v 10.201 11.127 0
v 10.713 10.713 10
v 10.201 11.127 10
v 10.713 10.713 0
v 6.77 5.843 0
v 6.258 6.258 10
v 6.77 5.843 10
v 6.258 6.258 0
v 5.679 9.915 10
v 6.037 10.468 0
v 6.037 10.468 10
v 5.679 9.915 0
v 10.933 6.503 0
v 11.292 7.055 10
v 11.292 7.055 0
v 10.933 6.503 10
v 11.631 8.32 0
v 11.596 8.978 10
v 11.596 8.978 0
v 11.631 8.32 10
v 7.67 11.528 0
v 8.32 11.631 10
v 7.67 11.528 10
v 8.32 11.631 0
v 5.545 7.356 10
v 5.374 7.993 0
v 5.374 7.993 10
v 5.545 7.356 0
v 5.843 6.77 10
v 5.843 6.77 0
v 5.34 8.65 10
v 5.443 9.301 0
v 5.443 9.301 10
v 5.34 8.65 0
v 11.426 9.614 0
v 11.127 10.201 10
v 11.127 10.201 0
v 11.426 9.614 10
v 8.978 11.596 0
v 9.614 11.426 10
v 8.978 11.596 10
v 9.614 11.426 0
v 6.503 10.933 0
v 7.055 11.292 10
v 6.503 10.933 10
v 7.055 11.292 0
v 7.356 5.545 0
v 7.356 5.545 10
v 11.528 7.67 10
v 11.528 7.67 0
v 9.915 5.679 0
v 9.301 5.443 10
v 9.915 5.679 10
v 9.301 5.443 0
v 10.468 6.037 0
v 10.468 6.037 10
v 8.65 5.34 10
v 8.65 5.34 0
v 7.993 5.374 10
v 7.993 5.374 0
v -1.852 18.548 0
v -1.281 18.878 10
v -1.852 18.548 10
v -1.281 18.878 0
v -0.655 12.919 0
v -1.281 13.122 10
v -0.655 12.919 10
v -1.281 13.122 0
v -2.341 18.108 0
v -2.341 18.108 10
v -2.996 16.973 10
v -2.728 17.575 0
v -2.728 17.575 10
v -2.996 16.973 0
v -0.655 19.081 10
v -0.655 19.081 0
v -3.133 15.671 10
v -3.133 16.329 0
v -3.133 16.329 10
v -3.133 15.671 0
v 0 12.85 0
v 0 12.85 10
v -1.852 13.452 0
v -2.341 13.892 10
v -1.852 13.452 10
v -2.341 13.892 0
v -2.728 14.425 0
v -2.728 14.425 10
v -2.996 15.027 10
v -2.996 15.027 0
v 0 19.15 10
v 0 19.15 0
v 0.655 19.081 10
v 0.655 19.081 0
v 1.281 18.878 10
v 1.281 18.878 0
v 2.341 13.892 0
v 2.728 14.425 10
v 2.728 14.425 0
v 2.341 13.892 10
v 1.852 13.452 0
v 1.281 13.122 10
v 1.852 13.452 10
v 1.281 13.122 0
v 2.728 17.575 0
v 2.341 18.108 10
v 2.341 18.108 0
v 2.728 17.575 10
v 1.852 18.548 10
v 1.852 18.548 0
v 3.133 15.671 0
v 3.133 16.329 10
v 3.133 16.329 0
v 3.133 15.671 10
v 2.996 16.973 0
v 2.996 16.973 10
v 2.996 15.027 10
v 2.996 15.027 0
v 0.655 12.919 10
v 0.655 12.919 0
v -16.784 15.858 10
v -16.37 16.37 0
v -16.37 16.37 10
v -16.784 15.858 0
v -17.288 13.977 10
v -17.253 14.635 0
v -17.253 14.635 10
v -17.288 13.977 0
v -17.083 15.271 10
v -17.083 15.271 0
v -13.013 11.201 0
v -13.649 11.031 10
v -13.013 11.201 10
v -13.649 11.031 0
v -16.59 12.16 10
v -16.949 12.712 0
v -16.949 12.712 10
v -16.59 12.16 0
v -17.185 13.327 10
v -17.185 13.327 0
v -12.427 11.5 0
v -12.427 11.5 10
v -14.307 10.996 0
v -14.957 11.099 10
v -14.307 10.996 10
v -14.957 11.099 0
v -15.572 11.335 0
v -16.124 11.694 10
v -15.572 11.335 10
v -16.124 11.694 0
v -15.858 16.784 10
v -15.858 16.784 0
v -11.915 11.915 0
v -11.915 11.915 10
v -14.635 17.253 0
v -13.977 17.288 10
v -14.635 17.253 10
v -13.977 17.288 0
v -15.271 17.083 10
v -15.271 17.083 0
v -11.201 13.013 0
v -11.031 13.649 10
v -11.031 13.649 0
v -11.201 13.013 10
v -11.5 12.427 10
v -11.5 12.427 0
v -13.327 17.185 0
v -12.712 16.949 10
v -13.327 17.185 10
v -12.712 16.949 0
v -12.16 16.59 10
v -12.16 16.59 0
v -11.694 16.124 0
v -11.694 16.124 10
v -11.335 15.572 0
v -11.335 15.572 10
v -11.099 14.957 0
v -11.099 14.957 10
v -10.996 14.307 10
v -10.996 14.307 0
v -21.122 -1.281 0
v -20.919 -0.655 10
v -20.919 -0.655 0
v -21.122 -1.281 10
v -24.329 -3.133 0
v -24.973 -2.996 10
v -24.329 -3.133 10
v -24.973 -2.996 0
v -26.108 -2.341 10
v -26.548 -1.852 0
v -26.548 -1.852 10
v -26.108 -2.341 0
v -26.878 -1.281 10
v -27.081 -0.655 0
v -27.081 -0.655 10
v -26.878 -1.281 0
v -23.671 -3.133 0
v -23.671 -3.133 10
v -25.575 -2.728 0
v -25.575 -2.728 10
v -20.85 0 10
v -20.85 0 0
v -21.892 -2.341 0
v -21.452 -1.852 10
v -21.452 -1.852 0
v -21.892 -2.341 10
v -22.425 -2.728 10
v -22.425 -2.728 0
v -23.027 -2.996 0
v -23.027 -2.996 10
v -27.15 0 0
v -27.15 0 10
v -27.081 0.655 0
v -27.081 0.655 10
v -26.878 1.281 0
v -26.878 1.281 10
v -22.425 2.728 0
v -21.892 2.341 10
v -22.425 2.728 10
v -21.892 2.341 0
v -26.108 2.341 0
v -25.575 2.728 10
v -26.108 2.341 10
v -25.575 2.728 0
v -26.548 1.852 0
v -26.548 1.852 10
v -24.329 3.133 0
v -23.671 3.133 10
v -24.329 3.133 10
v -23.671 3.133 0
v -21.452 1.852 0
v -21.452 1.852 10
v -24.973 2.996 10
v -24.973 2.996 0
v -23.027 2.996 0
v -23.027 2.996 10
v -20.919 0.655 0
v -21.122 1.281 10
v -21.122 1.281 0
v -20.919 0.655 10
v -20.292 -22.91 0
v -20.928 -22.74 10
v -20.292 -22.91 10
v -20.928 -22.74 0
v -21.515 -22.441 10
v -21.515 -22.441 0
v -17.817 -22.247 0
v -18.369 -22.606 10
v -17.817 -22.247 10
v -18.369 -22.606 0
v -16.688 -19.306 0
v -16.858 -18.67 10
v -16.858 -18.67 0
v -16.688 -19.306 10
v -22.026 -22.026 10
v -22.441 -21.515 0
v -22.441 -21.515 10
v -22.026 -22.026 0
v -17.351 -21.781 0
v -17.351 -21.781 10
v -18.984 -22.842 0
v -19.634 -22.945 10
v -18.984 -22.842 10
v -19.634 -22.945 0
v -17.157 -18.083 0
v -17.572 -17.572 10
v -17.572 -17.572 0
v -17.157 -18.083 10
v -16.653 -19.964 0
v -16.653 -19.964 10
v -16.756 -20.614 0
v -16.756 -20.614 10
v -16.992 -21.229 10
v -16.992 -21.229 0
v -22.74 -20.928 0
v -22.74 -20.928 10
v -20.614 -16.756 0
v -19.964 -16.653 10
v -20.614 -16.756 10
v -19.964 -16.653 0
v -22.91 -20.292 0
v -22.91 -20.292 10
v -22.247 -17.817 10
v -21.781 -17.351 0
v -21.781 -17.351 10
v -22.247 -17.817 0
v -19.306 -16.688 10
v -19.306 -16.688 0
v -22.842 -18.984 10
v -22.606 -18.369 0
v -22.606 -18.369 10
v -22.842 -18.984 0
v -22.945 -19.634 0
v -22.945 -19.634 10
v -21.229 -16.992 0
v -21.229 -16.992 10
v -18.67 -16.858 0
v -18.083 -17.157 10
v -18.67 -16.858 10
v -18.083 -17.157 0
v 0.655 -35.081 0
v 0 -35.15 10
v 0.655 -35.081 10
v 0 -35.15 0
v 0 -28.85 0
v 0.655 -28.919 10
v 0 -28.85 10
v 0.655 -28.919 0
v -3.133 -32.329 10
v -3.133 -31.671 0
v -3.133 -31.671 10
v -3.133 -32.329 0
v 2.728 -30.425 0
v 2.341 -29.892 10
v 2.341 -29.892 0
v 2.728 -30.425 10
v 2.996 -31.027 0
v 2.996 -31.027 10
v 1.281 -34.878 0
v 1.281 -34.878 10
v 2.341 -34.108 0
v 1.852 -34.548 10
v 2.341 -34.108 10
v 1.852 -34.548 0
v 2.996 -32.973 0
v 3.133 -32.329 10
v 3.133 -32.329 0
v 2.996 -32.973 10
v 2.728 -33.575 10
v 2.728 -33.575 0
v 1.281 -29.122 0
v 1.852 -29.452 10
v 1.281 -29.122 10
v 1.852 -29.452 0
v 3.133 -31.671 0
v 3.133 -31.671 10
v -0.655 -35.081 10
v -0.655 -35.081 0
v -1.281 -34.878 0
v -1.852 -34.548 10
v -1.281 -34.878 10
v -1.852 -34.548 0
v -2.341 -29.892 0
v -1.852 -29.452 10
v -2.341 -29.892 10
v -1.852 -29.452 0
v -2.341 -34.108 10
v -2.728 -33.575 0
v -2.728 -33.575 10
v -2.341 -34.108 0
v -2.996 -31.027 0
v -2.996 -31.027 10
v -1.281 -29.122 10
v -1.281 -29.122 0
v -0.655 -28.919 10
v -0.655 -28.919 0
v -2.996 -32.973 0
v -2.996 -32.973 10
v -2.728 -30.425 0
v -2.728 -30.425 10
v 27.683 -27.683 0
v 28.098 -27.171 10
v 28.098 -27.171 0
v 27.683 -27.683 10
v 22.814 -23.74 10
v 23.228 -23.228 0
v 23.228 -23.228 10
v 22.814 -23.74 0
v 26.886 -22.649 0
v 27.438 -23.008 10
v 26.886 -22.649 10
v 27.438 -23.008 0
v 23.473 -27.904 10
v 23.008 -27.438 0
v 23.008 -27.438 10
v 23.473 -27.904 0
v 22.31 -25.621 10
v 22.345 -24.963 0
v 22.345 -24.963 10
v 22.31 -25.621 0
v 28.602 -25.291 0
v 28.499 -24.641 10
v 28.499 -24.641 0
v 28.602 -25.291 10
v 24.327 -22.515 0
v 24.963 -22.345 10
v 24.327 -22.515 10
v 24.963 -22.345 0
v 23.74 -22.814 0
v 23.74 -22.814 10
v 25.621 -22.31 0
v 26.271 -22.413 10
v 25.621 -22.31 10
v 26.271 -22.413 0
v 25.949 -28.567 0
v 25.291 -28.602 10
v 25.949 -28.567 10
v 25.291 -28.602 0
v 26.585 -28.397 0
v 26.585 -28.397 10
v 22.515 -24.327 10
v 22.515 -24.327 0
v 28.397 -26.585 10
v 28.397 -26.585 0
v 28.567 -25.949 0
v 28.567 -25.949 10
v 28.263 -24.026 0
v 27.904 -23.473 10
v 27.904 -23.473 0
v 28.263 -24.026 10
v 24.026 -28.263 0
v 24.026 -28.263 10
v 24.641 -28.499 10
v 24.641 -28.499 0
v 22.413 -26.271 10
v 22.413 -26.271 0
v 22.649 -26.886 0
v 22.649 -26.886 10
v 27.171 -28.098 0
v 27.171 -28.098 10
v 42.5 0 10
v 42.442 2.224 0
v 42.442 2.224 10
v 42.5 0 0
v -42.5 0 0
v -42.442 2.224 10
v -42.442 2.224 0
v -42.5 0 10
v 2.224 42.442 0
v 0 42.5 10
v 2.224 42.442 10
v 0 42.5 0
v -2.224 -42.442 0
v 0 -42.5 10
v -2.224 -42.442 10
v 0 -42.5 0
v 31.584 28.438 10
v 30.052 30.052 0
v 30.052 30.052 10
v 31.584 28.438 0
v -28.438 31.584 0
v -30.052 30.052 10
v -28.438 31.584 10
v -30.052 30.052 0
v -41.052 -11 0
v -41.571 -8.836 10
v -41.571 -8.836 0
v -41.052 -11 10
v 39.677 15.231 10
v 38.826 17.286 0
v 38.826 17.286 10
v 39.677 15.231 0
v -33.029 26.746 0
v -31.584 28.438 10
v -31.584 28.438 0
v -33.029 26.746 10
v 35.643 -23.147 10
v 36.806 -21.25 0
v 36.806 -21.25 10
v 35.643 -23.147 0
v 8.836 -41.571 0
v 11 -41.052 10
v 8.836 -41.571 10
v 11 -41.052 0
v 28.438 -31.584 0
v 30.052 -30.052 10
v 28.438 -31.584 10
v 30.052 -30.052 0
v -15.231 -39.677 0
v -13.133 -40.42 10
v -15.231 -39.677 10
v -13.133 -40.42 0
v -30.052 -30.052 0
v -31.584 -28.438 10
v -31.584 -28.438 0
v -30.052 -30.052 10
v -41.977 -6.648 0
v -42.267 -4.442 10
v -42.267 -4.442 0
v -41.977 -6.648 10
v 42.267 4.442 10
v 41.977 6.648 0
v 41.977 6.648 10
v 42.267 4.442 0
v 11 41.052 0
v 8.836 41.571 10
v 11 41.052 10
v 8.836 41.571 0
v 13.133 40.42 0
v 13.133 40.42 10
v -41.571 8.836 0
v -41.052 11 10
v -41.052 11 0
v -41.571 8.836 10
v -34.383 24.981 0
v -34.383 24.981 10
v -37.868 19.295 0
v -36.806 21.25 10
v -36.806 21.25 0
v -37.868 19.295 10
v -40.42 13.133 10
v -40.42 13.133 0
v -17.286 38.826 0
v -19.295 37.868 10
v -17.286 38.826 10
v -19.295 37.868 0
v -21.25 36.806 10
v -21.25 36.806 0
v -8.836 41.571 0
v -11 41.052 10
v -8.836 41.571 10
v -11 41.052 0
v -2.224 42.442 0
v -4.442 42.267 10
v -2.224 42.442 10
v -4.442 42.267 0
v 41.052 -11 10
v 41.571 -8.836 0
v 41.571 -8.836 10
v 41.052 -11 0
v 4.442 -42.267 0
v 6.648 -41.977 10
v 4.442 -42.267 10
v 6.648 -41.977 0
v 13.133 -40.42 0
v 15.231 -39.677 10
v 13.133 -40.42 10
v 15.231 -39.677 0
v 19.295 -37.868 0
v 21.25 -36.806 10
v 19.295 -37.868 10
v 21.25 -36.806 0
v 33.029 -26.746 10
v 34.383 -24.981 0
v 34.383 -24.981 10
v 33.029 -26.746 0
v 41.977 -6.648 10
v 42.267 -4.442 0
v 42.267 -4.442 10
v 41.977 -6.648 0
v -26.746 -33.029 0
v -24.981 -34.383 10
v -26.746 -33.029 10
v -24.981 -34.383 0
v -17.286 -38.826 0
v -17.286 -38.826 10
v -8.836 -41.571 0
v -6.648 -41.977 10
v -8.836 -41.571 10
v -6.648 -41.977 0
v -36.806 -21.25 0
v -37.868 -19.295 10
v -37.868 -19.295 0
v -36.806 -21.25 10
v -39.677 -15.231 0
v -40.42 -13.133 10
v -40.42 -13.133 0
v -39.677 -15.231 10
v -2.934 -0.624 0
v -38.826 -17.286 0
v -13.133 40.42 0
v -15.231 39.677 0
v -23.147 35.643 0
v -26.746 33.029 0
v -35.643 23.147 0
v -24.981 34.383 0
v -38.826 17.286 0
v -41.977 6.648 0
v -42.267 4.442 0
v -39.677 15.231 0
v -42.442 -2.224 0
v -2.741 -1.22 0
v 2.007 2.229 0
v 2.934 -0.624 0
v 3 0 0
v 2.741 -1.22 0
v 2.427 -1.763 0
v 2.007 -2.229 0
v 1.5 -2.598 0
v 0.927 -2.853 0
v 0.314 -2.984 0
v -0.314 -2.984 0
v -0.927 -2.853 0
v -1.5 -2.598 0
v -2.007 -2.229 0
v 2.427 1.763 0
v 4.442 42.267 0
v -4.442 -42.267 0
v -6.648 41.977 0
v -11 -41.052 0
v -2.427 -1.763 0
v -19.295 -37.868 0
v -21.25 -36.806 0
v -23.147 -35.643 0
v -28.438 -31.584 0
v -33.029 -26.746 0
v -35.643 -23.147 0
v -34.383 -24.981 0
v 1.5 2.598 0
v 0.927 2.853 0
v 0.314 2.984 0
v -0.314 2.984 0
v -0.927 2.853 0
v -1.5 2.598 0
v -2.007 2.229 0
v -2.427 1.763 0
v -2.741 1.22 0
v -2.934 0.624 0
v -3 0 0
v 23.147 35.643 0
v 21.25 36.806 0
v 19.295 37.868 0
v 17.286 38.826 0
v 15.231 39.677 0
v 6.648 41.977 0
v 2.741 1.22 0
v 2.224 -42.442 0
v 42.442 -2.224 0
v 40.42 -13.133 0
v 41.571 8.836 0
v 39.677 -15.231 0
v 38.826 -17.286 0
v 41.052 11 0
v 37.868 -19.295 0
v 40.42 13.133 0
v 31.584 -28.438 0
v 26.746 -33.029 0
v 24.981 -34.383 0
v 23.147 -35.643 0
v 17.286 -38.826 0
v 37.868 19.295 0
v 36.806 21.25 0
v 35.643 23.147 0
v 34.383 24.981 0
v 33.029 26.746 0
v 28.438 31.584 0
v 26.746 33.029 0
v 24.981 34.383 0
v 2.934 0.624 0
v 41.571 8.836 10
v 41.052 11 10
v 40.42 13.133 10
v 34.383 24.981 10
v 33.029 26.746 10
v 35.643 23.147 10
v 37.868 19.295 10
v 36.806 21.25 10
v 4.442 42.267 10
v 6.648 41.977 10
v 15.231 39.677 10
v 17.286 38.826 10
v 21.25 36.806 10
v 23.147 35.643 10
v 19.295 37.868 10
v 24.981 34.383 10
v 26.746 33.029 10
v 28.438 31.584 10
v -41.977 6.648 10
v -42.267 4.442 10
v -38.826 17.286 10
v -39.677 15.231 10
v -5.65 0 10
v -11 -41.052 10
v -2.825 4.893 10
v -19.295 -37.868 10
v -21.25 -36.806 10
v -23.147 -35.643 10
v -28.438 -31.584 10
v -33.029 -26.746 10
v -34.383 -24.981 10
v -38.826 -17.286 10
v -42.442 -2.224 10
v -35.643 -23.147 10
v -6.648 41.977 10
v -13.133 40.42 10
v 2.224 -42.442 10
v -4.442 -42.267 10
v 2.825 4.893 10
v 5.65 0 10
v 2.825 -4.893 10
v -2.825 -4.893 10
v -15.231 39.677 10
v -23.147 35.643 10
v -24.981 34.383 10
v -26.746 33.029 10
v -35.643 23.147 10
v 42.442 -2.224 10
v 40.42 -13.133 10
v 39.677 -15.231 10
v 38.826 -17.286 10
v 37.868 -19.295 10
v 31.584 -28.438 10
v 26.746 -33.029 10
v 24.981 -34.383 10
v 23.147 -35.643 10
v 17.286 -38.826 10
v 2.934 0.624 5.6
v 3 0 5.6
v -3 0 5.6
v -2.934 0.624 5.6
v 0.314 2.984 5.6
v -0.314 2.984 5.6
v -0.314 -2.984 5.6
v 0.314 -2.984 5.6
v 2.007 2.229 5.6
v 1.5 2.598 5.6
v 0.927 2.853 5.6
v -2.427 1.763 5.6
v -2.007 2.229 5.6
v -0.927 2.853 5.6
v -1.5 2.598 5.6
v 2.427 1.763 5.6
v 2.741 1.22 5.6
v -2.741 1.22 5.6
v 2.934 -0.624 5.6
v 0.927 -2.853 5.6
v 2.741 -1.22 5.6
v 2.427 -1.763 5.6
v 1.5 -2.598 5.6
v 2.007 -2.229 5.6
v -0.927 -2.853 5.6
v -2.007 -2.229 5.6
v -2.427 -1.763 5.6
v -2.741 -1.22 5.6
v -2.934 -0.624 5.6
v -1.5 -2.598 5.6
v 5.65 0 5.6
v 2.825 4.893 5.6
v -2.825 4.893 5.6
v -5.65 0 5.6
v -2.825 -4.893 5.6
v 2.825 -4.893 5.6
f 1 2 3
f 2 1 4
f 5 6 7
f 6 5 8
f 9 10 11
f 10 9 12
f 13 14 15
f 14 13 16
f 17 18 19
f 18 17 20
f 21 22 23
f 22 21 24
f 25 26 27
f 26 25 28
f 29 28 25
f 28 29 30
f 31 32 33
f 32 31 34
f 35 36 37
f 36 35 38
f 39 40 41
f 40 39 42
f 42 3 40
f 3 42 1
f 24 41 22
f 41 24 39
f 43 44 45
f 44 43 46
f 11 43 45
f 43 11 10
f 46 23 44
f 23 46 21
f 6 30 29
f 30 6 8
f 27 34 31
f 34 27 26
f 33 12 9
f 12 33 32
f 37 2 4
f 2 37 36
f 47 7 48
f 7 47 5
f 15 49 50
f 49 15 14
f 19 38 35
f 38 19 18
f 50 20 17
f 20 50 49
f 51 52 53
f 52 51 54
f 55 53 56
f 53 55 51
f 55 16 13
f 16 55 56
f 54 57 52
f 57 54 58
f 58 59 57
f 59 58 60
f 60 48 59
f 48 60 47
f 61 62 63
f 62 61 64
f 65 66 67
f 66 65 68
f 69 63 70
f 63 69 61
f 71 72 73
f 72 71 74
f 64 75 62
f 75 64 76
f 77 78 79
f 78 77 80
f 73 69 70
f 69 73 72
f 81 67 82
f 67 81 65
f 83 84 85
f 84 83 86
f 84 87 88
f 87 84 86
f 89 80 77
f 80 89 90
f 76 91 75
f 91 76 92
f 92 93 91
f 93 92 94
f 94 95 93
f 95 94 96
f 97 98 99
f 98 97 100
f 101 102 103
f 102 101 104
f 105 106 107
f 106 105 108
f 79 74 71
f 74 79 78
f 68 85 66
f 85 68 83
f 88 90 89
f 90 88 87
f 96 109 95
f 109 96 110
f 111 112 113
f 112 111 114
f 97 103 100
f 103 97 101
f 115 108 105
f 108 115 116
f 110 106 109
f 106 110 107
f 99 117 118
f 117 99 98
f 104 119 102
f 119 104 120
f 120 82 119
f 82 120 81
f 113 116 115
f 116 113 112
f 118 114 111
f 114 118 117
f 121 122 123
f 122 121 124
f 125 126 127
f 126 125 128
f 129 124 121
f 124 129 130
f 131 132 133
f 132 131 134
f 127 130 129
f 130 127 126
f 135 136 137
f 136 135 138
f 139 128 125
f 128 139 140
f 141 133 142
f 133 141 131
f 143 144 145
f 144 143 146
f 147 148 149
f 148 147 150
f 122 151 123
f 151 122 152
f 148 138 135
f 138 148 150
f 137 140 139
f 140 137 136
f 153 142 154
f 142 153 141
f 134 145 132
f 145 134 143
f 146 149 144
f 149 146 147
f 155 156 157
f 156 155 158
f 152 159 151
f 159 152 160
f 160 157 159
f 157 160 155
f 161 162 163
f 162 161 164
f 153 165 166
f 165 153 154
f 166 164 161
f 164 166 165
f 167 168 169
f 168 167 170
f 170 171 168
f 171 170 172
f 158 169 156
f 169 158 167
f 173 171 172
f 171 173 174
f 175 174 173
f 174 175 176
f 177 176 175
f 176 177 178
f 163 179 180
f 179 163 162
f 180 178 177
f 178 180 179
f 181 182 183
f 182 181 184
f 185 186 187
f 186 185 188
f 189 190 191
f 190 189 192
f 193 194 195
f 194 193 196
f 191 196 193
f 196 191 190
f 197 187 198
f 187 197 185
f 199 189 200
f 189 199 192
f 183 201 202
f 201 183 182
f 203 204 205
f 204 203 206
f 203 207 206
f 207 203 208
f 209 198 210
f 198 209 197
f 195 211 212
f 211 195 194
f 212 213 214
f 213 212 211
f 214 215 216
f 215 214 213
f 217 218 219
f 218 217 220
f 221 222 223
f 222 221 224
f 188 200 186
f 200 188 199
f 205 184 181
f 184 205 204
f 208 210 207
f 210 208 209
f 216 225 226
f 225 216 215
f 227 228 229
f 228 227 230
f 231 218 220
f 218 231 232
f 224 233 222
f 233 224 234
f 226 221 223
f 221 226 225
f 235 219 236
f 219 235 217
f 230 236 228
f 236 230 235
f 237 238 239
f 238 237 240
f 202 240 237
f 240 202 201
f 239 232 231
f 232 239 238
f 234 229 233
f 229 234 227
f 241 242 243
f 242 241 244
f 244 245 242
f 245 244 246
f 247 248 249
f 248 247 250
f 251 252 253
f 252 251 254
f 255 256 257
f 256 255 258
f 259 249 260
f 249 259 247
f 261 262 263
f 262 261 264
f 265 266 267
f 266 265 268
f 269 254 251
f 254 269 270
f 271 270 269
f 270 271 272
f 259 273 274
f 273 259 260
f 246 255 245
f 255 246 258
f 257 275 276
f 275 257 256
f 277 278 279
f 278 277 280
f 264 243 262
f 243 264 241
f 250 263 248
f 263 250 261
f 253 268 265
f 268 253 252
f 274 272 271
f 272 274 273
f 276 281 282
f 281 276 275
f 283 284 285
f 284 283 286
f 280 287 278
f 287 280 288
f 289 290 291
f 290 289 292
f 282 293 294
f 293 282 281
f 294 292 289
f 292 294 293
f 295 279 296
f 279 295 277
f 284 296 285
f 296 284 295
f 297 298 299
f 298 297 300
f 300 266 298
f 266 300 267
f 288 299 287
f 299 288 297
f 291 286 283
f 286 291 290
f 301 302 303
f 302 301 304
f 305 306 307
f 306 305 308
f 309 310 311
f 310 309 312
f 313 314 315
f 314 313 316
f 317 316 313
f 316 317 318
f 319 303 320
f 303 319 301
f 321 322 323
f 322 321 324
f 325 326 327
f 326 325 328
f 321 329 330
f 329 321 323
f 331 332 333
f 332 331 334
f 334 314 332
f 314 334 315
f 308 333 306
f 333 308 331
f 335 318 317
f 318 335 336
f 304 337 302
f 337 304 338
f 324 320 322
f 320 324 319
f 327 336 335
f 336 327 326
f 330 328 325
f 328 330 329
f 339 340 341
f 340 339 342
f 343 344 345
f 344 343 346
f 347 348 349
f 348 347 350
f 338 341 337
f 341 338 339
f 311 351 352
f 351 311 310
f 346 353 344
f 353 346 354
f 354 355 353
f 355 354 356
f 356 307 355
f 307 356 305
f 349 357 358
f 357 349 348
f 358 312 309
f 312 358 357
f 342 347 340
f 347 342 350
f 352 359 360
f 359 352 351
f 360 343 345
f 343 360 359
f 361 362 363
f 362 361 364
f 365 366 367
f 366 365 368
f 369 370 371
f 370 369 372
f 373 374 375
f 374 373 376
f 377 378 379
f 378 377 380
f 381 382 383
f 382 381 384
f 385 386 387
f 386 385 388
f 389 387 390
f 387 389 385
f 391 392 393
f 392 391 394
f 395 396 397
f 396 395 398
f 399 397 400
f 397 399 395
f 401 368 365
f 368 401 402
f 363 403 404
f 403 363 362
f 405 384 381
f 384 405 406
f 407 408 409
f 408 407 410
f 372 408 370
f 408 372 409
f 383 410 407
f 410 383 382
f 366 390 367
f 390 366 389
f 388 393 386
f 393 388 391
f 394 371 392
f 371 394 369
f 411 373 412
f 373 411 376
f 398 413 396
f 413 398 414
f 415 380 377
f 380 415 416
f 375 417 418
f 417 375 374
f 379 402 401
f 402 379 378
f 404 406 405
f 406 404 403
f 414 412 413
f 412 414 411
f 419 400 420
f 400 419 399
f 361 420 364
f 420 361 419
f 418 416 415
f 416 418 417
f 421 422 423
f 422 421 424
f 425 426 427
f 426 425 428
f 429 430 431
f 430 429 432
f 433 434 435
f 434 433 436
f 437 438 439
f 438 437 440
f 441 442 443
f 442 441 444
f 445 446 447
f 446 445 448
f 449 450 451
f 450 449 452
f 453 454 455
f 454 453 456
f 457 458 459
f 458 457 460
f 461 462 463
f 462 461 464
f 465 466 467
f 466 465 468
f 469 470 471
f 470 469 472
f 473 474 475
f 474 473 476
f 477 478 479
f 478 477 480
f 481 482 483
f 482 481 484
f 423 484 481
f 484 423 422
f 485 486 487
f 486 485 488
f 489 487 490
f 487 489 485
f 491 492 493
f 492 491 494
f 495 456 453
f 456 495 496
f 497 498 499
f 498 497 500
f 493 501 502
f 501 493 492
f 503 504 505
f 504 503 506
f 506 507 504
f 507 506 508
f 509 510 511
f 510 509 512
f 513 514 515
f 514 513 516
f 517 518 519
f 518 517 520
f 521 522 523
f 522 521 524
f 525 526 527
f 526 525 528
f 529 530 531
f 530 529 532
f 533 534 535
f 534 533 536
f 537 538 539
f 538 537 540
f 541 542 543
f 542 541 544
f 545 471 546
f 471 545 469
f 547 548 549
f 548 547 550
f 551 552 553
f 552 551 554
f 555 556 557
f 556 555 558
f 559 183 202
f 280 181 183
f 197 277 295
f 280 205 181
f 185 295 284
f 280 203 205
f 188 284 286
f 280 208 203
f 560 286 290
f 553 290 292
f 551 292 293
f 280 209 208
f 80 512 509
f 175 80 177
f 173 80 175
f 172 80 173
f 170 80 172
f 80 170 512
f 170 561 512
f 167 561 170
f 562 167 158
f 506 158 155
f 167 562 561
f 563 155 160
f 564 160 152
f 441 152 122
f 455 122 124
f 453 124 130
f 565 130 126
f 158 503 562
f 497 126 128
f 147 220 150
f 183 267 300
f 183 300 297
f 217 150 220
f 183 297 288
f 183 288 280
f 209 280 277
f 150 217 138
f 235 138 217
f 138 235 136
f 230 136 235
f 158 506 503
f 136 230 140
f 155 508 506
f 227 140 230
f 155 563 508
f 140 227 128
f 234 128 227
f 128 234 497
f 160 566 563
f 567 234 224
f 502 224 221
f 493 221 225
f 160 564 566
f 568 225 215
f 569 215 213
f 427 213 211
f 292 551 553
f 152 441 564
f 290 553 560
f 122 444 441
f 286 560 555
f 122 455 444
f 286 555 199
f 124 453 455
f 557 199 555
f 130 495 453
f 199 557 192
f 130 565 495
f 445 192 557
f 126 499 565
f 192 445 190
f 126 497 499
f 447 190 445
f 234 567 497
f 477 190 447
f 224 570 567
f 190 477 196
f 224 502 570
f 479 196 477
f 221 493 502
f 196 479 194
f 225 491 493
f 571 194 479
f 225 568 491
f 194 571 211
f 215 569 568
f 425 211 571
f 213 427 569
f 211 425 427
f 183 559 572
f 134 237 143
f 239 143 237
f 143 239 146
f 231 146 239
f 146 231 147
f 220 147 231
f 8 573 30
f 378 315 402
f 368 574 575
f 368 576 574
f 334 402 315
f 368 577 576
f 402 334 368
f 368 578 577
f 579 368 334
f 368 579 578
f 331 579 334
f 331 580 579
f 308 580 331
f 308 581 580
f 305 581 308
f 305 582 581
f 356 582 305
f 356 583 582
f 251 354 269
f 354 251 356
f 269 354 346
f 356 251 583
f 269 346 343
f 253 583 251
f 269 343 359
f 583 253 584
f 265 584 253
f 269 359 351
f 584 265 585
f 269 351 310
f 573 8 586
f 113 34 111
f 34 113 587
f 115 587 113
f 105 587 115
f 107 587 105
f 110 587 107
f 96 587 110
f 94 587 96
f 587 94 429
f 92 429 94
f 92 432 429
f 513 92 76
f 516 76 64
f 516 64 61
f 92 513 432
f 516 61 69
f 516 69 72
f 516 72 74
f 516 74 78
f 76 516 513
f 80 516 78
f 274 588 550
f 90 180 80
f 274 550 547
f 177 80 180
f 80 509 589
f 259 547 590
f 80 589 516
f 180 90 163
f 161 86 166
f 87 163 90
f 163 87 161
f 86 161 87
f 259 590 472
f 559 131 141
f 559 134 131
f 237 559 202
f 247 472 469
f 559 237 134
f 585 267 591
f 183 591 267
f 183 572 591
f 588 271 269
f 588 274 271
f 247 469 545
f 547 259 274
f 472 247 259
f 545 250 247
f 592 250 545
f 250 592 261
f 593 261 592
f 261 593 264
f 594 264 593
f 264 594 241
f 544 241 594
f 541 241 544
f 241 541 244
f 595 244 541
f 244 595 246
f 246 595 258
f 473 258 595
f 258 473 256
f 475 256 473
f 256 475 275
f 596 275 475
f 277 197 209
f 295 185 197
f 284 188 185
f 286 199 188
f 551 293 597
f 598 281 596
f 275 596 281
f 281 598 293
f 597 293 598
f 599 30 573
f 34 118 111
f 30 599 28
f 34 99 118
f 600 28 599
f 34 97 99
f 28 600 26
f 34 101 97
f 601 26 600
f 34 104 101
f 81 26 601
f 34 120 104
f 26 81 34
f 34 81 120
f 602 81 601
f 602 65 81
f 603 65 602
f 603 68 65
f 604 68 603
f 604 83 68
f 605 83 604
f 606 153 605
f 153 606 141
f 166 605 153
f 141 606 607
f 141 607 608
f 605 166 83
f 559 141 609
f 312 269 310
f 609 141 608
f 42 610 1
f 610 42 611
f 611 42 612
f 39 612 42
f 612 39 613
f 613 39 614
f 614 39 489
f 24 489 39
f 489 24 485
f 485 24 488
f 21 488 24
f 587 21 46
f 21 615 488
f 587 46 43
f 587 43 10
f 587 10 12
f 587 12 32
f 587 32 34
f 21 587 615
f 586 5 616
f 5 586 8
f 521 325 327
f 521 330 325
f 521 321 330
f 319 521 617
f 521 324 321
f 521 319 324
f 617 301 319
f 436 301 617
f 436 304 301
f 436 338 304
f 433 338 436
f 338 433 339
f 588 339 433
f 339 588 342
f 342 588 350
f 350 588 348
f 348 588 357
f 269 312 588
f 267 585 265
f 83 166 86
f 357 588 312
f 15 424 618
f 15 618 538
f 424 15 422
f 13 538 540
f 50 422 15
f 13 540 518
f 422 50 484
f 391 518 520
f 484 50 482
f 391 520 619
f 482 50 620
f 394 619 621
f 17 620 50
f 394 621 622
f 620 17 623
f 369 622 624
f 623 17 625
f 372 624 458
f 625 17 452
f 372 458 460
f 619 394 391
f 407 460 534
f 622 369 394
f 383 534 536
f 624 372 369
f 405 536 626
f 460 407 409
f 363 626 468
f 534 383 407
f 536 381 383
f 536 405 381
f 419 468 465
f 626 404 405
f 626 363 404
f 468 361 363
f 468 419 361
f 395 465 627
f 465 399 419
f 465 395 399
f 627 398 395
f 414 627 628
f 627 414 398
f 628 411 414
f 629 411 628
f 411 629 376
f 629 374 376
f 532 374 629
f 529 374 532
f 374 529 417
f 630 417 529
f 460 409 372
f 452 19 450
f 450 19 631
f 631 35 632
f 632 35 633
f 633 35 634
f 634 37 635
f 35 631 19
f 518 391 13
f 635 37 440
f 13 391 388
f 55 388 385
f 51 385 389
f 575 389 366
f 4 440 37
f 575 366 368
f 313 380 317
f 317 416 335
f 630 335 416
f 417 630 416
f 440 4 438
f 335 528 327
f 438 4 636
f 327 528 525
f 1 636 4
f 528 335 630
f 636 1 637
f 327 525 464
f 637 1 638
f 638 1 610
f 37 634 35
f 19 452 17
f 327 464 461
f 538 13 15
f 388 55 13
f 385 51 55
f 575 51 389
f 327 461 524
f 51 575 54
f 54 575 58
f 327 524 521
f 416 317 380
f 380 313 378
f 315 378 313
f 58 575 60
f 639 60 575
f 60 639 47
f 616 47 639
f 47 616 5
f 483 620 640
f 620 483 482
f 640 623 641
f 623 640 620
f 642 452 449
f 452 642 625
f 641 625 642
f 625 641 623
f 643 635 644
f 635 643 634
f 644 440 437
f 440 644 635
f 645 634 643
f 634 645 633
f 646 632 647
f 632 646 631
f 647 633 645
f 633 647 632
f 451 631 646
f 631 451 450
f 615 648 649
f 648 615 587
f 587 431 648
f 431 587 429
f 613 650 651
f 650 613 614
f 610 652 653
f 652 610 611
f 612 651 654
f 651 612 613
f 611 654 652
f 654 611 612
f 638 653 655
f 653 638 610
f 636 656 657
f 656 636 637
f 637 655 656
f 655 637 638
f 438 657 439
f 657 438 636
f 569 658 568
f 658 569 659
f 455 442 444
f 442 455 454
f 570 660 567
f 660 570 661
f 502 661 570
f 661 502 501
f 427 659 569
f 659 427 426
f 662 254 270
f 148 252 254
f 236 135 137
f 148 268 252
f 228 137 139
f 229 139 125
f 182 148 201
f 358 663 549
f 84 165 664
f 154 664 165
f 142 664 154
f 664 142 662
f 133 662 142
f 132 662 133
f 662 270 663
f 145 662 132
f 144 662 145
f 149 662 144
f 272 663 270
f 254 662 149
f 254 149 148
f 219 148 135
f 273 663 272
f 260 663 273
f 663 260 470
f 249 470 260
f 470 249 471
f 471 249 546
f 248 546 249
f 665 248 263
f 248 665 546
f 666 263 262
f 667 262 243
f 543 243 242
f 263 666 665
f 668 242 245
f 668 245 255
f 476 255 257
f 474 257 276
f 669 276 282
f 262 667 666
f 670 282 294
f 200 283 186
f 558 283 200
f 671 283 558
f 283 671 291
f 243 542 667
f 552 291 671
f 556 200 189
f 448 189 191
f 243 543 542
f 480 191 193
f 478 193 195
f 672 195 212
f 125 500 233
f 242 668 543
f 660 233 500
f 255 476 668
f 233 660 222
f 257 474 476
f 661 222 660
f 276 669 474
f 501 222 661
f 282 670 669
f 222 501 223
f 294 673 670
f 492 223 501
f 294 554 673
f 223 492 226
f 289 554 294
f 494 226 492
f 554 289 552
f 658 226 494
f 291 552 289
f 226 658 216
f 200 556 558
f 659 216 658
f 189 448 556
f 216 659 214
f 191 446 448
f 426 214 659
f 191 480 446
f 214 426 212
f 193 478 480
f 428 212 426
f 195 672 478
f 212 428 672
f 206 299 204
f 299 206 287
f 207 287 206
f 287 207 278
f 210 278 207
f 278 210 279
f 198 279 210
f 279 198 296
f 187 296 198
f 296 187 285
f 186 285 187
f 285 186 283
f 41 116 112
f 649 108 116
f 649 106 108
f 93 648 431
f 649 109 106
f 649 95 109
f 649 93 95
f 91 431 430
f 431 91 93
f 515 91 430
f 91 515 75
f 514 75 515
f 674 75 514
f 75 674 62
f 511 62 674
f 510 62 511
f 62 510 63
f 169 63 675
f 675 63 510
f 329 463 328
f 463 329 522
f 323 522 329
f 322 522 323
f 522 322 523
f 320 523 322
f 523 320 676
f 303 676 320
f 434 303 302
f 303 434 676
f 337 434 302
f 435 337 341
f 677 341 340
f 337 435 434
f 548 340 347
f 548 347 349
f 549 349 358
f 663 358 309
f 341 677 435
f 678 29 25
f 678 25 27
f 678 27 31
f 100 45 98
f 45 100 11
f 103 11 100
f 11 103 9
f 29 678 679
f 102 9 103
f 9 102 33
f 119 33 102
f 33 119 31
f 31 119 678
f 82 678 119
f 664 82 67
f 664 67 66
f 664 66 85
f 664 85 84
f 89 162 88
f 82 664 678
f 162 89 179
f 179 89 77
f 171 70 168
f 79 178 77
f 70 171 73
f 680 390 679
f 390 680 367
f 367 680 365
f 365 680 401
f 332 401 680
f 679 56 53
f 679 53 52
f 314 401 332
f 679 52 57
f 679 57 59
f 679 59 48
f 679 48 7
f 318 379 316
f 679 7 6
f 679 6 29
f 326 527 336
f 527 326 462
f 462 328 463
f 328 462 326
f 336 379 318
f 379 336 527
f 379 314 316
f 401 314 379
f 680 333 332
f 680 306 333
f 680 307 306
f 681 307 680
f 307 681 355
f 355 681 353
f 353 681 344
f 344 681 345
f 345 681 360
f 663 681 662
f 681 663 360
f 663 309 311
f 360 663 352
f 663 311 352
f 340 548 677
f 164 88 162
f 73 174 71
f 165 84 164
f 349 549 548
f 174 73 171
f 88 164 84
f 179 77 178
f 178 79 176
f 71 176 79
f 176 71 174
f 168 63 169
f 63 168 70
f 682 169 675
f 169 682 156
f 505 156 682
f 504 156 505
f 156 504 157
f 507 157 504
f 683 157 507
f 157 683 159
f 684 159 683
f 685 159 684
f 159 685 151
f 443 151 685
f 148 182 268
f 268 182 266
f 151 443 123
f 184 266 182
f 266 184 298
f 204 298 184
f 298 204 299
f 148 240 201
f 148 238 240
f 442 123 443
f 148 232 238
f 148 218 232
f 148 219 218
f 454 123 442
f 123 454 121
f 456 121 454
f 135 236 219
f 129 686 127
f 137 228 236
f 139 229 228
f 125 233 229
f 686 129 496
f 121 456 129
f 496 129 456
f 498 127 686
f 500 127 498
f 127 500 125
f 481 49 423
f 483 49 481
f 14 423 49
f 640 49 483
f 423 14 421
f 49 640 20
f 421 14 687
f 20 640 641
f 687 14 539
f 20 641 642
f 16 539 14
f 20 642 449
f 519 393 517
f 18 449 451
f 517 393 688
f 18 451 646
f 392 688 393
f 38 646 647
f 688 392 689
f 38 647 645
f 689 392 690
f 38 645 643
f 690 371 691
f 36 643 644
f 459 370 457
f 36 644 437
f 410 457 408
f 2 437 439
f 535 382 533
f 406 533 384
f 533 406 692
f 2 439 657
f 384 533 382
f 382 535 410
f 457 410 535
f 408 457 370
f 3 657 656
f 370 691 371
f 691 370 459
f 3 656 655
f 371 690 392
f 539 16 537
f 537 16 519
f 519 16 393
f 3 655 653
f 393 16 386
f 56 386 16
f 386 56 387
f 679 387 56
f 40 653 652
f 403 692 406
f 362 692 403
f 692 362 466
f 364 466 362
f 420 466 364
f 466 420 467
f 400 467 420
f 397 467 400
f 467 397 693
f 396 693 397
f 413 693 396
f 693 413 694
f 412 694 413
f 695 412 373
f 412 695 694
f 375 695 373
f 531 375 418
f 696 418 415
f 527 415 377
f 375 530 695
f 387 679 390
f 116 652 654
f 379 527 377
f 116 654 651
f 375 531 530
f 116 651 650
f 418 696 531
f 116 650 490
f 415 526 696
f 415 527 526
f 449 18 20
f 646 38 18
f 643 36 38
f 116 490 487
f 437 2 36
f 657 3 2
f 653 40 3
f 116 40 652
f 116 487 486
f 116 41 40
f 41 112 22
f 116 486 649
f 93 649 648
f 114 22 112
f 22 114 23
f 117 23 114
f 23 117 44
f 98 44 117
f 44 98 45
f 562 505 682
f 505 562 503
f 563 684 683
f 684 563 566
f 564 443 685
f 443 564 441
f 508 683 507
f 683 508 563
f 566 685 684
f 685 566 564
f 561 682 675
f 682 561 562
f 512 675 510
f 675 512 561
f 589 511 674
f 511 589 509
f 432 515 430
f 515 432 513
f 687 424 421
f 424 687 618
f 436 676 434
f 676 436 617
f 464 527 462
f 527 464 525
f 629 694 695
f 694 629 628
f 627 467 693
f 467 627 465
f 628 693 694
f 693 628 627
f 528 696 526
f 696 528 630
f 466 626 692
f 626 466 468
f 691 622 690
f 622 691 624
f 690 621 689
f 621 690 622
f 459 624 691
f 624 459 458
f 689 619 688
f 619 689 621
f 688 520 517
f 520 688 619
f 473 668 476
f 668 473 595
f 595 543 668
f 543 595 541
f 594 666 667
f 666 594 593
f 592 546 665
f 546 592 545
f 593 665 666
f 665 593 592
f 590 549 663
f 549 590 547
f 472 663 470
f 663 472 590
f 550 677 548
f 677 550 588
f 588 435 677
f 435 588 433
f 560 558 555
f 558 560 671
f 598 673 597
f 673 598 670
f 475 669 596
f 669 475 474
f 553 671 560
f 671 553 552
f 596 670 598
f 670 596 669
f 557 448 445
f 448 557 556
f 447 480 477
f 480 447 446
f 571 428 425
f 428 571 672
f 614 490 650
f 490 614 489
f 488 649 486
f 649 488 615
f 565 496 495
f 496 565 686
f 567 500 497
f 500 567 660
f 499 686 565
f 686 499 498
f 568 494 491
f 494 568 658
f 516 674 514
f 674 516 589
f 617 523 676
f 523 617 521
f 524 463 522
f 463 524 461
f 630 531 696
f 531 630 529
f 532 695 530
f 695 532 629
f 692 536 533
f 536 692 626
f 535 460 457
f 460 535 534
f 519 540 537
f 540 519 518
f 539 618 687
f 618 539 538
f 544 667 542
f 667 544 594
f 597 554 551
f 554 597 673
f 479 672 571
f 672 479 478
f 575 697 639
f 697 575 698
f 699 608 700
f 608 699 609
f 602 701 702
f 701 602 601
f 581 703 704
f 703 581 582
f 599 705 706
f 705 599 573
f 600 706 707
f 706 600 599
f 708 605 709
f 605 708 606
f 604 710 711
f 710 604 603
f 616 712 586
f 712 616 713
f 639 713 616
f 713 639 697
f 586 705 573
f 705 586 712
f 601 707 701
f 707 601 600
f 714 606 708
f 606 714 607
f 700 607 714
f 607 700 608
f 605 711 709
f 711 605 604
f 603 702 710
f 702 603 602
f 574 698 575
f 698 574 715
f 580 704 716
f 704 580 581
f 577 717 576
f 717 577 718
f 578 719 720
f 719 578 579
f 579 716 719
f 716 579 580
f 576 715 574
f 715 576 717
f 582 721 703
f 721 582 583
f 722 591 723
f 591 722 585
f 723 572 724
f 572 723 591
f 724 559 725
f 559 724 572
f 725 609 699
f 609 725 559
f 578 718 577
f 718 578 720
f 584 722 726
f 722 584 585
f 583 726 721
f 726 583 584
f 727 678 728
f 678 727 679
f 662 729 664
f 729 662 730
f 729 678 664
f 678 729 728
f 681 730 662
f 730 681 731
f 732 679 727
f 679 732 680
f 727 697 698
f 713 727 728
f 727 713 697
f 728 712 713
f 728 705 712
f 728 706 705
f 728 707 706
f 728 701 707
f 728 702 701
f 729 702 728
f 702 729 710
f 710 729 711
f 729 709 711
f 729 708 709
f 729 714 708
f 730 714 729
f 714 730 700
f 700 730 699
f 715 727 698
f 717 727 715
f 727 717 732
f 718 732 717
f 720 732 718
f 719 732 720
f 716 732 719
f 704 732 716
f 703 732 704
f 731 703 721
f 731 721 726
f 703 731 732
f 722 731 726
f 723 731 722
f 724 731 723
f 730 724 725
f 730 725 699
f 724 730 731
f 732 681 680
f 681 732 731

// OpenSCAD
difference(){
cylinder(d=85,h=10,$fn=120);
translate([0,0,-1])cylinder(d=6,h=10,$fn=30);
translate([0,0,5.6])cylinder(d=11.3,h=4.5,$fn=6);

for ( i= [1:7] ){
    rotate([0,0,45*i])
    translate([8+i*4,0,-1])cylinder(d=6.3,h=12,$fn=30);
}
}
